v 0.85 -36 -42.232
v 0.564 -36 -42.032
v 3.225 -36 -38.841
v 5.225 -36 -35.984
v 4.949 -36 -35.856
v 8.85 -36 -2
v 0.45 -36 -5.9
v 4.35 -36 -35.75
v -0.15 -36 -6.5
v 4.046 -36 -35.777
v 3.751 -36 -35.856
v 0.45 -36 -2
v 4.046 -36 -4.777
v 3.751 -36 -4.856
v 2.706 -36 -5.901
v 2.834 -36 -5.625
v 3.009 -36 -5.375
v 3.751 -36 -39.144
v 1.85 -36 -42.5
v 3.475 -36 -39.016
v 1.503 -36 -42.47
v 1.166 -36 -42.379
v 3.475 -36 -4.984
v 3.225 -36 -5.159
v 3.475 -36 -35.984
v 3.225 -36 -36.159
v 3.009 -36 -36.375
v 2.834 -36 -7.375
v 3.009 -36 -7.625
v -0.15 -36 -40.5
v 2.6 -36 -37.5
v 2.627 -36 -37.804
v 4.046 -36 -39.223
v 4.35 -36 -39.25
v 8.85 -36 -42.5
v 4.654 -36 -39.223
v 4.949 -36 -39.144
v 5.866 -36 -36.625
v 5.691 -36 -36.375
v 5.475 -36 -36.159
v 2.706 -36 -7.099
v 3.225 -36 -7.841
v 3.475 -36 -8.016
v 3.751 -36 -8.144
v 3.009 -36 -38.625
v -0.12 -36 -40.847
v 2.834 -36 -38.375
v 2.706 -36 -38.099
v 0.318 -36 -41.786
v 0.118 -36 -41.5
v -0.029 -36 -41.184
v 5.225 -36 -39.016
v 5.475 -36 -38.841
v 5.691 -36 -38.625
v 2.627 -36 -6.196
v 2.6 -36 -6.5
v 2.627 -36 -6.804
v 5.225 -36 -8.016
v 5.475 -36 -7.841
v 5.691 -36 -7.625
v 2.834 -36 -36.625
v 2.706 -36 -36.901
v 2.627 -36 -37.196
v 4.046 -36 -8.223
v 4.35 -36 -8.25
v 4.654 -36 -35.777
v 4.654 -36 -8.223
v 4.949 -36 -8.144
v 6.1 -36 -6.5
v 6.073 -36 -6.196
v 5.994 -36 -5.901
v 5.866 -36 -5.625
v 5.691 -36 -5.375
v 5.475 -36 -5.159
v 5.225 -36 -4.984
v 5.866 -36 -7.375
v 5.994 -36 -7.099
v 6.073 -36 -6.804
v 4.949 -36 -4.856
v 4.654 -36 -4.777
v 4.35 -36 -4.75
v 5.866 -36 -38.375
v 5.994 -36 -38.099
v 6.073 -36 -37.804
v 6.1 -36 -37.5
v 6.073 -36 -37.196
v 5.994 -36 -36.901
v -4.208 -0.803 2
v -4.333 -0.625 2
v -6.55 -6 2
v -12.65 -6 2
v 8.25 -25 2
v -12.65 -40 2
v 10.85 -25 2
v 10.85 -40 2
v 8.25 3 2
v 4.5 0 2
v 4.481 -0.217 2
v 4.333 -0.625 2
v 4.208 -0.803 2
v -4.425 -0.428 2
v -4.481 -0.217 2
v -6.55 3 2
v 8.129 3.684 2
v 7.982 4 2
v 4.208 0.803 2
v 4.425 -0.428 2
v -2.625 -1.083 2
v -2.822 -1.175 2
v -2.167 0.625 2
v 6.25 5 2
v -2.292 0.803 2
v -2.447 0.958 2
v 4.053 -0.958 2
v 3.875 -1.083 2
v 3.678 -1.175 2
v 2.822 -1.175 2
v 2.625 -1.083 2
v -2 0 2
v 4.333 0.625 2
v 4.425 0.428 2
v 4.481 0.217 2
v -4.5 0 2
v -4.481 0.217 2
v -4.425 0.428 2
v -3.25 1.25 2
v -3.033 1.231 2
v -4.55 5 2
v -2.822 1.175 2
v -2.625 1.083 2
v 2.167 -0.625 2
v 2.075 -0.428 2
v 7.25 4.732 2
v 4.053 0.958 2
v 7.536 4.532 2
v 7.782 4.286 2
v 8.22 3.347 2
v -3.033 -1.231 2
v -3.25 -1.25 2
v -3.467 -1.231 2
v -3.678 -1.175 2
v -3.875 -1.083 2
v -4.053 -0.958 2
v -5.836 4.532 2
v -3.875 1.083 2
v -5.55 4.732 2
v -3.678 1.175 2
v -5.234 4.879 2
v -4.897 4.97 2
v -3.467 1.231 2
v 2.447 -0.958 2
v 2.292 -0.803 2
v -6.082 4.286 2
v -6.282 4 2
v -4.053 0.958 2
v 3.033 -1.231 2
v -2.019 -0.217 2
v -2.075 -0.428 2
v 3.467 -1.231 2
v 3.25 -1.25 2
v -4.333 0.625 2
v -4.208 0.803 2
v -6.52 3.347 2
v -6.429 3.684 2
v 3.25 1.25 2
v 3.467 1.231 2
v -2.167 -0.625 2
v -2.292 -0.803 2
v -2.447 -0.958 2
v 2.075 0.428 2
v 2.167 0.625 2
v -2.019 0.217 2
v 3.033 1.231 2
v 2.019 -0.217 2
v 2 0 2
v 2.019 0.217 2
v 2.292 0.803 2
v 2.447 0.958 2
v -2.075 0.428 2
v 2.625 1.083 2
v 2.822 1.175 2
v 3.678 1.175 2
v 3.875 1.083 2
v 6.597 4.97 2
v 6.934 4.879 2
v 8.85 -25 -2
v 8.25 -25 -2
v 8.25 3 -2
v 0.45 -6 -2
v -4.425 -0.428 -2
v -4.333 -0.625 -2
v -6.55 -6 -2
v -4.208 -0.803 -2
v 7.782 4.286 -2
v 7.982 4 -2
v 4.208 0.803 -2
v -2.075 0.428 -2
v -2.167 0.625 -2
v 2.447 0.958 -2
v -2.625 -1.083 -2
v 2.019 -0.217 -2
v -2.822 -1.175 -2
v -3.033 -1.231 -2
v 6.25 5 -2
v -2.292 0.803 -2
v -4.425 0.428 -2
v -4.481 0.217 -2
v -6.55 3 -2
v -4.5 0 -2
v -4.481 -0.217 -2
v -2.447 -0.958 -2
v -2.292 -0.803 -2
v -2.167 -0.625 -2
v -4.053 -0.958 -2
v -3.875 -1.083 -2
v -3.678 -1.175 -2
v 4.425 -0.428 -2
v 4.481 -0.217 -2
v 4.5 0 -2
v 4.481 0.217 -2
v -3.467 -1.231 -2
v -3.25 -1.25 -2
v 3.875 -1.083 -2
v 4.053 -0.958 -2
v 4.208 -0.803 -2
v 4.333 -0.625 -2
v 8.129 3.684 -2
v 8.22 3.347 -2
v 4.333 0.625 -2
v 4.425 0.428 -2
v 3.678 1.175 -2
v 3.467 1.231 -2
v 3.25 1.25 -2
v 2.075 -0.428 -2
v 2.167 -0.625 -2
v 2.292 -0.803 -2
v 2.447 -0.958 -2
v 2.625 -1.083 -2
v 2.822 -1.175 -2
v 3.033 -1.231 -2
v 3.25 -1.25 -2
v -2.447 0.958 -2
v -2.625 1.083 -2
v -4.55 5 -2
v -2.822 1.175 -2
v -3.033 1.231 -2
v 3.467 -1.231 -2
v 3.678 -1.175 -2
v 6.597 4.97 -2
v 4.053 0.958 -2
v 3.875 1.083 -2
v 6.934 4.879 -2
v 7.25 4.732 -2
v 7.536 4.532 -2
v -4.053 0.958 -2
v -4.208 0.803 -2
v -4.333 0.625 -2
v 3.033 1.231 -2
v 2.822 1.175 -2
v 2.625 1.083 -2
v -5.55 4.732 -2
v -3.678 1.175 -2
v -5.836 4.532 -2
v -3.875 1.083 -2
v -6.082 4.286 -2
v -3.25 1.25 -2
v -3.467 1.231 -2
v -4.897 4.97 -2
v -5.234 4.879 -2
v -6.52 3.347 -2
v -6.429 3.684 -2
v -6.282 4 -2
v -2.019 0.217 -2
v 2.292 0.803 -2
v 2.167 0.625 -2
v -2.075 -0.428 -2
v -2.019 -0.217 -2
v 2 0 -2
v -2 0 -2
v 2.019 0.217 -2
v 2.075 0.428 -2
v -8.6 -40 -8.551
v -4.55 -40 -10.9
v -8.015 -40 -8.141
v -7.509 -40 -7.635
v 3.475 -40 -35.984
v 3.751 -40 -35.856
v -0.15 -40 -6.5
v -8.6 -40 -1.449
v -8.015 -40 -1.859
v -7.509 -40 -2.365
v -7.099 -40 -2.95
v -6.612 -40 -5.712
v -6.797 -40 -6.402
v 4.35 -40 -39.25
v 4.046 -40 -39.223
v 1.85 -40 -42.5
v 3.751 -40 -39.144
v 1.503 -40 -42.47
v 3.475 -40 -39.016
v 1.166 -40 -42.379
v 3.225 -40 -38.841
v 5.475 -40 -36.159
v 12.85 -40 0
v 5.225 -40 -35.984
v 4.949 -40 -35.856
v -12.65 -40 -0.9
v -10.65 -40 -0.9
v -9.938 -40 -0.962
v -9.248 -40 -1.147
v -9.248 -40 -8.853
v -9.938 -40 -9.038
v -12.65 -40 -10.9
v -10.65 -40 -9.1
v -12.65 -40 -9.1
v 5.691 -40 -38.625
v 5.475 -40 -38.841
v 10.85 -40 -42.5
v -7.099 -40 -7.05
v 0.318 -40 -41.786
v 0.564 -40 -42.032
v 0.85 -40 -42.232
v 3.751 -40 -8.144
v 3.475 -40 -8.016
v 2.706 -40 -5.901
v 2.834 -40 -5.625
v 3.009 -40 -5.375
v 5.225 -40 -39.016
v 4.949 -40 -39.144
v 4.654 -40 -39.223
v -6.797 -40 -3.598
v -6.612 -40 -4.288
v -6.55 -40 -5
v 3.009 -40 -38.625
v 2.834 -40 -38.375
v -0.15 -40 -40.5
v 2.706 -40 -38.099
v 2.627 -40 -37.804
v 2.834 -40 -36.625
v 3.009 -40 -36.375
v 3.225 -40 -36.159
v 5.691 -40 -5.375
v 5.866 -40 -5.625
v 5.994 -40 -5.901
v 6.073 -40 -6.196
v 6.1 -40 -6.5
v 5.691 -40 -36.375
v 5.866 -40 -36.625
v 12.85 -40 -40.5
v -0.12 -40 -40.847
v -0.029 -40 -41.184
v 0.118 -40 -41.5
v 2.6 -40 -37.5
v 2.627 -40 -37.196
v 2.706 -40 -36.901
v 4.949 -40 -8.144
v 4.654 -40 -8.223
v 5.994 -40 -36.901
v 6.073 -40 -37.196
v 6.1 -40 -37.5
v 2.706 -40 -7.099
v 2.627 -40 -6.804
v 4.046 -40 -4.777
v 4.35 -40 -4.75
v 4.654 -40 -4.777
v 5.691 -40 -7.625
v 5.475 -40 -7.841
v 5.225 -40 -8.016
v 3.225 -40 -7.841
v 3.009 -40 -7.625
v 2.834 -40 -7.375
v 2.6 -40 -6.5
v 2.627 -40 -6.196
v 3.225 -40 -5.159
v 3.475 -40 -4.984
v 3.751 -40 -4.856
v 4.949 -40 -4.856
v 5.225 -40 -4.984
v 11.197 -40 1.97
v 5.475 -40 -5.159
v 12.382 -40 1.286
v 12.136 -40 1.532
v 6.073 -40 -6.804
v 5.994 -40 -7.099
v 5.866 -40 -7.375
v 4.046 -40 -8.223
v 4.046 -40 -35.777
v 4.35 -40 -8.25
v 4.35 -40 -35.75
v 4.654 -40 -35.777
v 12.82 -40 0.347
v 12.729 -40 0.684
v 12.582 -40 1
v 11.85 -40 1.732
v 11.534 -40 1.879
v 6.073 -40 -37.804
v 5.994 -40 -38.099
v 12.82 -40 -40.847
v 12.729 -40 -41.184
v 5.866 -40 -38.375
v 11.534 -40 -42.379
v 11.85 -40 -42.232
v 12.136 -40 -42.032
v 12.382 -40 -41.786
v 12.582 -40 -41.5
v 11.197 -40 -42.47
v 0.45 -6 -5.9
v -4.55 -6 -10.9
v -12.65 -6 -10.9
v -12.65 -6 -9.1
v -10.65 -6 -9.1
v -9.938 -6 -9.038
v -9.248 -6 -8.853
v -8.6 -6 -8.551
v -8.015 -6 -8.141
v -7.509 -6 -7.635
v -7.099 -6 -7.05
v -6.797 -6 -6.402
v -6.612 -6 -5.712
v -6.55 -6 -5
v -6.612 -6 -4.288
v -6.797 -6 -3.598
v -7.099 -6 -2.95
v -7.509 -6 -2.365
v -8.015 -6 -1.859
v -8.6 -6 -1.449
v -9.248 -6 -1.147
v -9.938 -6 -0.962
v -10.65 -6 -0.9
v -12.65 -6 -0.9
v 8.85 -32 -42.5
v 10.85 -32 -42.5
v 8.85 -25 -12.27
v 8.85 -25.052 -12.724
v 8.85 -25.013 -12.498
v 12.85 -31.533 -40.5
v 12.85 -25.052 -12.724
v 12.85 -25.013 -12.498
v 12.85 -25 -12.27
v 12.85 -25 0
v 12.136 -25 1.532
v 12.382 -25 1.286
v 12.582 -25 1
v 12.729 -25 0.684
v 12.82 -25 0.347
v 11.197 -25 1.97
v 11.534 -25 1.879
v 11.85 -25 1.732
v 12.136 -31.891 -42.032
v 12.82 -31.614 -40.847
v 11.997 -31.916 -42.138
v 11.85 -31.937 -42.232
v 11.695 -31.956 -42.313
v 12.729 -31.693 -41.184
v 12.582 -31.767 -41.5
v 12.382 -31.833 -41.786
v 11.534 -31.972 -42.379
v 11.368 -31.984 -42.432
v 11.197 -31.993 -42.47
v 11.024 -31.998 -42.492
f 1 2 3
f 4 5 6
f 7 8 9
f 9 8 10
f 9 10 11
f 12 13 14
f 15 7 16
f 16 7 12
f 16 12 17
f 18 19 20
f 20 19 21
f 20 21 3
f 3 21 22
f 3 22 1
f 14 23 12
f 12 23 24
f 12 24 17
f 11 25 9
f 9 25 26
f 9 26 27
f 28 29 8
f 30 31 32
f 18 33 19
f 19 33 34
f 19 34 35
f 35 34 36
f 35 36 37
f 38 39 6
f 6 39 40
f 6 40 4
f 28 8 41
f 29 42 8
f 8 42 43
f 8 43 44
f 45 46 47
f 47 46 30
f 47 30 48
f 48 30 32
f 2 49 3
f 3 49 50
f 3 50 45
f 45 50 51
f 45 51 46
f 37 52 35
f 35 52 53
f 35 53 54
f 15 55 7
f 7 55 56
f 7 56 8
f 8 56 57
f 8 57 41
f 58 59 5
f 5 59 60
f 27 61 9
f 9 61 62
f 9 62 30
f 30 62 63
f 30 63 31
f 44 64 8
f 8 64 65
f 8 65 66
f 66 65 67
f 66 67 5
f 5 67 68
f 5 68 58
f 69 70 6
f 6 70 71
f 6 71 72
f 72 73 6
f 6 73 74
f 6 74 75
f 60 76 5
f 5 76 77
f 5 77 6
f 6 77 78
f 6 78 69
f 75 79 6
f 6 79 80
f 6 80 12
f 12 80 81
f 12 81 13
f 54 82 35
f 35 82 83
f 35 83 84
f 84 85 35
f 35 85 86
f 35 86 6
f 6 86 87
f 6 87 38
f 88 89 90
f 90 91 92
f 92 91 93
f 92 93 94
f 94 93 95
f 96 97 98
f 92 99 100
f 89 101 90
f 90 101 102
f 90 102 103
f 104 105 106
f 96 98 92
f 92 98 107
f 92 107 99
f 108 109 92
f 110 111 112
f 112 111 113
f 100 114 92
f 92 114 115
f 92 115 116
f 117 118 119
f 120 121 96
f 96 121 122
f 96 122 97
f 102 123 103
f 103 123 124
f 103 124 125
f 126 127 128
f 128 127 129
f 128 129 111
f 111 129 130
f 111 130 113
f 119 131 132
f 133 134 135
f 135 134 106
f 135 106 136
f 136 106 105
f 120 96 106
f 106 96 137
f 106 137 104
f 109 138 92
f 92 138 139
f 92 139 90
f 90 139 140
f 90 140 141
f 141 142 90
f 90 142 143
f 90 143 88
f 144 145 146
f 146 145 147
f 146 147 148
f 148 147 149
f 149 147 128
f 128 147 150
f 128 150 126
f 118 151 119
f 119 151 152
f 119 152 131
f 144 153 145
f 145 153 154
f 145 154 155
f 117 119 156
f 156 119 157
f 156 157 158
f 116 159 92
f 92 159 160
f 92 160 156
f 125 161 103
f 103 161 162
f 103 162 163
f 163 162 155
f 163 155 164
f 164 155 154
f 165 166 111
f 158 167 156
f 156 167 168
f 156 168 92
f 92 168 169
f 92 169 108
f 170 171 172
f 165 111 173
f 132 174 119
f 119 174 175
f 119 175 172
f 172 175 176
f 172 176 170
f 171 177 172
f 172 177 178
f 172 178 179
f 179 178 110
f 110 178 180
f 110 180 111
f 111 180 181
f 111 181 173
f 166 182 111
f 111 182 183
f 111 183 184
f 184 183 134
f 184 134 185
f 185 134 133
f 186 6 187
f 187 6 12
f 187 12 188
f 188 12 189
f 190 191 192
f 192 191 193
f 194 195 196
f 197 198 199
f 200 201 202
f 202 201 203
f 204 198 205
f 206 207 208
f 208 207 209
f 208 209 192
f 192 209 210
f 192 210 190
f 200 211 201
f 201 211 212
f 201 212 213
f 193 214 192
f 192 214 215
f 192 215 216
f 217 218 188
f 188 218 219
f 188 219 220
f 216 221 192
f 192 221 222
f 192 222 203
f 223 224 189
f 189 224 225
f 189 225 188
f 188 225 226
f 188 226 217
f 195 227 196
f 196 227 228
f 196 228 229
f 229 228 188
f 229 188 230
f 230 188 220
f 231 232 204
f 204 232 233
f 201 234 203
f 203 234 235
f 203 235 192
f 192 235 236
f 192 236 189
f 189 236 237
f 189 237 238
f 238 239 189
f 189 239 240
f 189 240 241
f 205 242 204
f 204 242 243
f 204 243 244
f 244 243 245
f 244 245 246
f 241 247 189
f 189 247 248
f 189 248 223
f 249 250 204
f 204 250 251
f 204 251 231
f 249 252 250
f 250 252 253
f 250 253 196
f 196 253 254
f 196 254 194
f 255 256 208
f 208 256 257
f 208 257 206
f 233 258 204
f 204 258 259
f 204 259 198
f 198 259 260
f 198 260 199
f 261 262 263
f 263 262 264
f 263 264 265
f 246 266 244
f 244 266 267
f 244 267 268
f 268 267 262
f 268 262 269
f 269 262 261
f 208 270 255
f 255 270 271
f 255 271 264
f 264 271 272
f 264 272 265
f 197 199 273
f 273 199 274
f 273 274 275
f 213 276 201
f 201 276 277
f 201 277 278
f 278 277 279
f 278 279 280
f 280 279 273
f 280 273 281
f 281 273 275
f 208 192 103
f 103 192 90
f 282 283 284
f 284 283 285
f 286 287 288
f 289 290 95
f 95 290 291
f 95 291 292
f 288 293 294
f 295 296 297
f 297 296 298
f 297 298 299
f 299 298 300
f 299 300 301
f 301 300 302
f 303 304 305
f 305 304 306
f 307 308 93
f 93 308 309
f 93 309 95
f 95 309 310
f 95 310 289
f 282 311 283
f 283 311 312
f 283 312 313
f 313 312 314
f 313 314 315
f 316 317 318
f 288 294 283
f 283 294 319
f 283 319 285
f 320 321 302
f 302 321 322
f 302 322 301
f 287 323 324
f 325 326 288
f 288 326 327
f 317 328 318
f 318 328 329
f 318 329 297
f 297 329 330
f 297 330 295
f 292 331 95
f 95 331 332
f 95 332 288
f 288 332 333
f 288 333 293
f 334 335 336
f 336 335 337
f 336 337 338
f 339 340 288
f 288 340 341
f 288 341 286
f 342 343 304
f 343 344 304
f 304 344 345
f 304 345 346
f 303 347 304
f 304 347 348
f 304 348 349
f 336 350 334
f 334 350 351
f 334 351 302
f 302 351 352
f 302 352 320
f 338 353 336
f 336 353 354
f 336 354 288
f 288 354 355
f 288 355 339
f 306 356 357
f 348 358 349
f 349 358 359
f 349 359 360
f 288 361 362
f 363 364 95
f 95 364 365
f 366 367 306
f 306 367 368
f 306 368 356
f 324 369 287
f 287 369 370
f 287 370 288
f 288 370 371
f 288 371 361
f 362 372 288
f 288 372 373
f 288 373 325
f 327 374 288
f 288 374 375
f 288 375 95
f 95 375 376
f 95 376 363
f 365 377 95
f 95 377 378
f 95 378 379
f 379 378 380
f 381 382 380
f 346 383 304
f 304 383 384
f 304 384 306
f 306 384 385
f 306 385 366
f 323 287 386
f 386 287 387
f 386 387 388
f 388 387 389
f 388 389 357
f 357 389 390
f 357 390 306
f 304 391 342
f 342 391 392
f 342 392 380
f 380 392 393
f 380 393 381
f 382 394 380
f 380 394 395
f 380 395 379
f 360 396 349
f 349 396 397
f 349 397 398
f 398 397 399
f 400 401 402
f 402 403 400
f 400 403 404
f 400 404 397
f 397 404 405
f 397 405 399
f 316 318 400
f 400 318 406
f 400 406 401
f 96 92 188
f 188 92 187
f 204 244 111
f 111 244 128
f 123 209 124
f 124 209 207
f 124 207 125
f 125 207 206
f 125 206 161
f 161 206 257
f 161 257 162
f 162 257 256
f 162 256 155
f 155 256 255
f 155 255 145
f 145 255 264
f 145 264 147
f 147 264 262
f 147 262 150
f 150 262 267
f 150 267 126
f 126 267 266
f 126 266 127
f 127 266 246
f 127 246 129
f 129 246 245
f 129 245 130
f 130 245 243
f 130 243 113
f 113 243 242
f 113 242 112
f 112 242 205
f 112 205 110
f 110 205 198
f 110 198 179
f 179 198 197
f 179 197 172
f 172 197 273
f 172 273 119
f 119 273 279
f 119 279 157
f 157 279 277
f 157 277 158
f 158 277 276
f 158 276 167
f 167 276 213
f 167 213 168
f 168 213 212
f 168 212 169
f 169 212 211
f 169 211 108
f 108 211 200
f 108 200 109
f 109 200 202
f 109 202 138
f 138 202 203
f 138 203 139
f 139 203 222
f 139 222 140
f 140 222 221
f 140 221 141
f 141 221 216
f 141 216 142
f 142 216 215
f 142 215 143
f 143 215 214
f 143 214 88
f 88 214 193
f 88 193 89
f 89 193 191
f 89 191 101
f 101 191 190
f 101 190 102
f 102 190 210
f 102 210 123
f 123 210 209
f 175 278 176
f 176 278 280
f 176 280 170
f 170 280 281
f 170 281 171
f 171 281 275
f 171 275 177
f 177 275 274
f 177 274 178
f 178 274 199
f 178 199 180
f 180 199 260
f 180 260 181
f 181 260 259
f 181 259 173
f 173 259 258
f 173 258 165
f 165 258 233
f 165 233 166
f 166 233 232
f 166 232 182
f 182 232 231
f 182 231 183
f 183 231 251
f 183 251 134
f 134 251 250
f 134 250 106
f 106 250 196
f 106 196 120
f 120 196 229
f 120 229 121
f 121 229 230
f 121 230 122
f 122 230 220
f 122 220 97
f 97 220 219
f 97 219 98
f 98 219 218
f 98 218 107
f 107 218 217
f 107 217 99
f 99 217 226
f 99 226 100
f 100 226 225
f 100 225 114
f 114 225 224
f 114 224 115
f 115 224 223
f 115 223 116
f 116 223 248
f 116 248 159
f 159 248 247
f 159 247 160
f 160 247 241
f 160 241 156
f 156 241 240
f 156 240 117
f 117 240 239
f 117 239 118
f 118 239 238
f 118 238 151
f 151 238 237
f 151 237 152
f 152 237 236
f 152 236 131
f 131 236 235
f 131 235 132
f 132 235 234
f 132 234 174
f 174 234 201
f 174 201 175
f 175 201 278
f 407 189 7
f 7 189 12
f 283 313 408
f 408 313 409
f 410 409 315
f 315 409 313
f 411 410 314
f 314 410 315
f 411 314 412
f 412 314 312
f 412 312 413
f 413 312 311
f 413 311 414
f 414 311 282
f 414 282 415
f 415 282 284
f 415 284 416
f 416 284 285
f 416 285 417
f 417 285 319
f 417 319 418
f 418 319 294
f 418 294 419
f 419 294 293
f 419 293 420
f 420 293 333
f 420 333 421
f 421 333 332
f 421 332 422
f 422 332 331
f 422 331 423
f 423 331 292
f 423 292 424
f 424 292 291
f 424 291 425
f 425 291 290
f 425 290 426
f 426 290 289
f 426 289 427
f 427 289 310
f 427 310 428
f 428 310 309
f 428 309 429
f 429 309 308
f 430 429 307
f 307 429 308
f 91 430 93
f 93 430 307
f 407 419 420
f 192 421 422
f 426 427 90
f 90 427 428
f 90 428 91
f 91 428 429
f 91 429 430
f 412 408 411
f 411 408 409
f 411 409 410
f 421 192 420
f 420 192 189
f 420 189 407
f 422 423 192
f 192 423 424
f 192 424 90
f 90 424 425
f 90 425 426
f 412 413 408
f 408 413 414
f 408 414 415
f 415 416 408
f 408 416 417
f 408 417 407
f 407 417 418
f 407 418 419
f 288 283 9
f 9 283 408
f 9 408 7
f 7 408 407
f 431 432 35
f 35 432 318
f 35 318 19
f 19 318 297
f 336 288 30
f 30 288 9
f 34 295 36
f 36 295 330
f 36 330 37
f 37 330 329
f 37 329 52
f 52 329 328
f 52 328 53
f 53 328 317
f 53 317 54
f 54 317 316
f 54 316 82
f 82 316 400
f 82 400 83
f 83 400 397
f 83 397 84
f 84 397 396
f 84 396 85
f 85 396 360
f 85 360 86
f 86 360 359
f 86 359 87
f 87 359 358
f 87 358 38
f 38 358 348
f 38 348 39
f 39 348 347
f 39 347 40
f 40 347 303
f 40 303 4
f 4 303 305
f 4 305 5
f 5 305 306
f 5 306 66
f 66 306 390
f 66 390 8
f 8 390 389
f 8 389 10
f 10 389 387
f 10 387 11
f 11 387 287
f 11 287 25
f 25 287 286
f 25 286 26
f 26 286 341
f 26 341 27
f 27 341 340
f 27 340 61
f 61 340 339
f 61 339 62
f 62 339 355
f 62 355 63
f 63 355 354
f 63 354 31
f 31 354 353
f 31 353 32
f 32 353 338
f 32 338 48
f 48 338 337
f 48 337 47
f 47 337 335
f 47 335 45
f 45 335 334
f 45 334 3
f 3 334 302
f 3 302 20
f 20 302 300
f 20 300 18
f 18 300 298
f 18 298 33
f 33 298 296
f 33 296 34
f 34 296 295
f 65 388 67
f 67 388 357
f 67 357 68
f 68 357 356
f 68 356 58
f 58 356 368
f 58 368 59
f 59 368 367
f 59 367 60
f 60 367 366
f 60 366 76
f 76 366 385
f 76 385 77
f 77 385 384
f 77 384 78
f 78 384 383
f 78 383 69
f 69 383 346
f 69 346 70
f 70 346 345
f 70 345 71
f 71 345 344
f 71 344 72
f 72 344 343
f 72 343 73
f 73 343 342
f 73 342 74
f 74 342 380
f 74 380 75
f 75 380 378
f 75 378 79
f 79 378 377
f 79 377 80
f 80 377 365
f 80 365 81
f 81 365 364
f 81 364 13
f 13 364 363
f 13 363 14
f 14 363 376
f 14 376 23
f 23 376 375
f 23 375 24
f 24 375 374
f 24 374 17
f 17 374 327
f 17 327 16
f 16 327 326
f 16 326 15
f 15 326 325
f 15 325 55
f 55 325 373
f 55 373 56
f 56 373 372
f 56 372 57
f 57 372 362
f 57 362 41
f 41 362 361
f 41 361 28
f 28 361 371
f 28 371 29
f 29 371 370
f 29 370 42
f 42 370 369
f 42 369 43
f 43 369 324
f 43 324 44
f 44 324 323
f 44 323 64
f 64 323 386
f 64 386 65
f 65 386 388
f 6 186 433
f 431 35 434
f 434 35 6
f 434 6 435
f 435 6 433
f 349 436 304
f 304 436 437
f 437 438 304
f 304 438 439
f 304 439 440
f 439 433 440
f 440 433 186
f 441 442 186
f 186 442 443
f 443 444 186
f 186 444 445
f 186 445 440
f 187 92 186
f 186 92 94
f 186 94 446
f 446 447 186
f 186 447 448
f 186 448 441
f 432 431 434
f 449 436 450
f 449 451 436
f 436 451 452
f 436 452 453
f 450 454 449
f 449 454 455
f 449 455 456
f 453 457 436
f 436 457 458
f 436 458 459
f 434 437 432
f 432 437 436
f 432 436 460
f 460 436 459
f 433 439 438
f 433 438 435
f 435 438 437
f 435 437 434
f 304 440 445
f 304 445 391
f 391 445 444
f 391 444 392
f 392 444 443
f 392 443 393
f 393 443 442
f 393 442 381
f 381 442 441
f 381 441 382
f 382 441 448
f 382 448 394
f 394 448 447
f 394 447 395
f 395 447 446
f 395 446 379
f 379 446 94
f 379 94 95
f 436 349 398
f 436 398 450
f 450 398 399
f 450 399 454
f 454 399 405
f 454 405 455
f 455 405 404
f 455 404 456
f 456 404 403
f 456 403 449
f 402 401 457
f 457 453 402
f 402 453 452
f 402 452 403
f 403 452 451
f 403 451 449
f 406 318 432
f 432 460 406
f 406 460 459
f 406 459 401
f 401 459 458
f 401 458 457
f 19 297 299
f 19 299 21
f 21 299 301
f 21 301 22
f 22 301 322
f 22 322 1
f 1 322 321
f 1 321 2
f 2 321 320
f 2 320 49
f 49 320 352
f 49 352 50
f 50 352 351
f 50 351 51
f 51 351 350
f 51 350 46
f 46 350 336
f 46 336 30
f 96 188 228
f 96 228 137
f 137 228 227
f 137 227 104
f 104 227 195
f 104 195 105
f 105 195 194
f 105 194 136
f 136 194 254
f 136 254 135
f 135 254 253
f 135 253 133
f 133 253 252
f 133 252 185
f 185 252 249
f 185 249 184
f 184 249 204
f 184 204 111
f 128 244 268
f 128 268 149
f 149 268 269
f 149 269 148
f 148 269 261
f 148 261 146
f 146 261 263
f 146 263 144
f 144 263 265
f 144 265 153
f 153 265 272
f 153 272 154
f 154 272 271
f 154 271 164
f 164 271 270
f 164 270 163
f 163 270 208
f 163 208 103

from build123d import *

# Parameters (mm, degrees)
SKETCH1_W           = 14.8
SKETCH1_H           = 45
SKETCH1_R           = 1.25
BOSS_EXTRUDE1_DEPTH = 2
BOSS_EXTRUDE2_DEPTH = 34
CHAMFER2_SIZE       = 5
SKETCH3_W           = 9
SKETCH3_H           = 44.5
SKETCH3_R           = 1.75
BOSS_EXTRUDE3_DEPTH = 4
BOSS_EXTRUDE4_DEPTH = 15
CHAMFER3_SIZE       = 7
CHAMFER3_SIZE2      = 30
FILLET3_R           = 2
FILLET4_R           = 2


with BuildPart() as part:
    # Sketch1 → Boss-Extrude1 (new body, symmetric)
    with BuildSketch(Plane.XY):
        with Locations((0.85, -17.5)):
            Rectangle(SKETCH1_W, SKETCH1_H)
        with Locations((-3.25, 0)):
            Circle(SKETCH1_R, mode=Mode.SUBTRACT)
        with Locations((3.25, 0)):
            Circle(SKETCH1_R, mode=Mode.SUBTRACT)
    extrude(amount=BOSS_EXTRUDE1_DEPTH, both=True)

    # Sketch2 → Boss-Extrude2 (add)
    with BuildSketch(Plane.XZ.offset(40)):
        with BuildLine():
            Line((-6.55, -2), (-6.55, 2))
            Line((-6.55, 2), (-12.65, 2))
            Line((-12.65, 2), (-12.65, -0.9))
            Line((-12.65, -0.9), (-10.65, -0.9))
            ThreePointArc((-10.65, -0.9), (-6.55, -5), (-10.65, -9.1))
            Line((-10.65, -9.1), (-12.65, -9.1))
            Line((-12.65, -9.1), (-12.65, -10.9))
            Line((-12.65, -10.9), (0.45, -10.9))
            Line((0.45, -10.9), (0.45, -2))
            Line((0.45, -2), (-6.55, -2))
        make_face()
    extrude(amount=-BOSS_EXTRUDE2_DEPTH)

    # Chamfer2
    chamfer2_edges = [part.edges().sort_by_distance(p)[0] for p in [
        (0.45, -23, -10.9),
    ]]
    chamfer(chamfer2_edges, length=CHAMFER2_SIZE)

    # Sketch3 → Boss-Extrude3 (add)
    with BuildSketch(Plane.XZ.offset(40)):
        with Locations((4.35, -20.25)):
            Rectangle(SKETCH3_W, SKETCH3_H)
        with Locations((4.35, -37.5)):
            Circle(SKETCH3_R, mode=Mode.SUBTRACT)
        with Locations((4.35, -6.5)):
            Circle(SKETCH3_R, mode=Mode.SUBTRACT)
    extrude(amount=-BOSS_EXTRUDE3_DEPTH)

    # Sketch4 → Boss-Extrude4 (add)
    with BuildSketch(Plane(origin=(0, -40, 0), x_dir=(-1, 0, 0), z_dir=(0, 1, 0))):
        Polygon((-8.85, -42.5), (-12.85, -42.5), (-12.85, 2), (-8.85, 2), (-8.25, 2), (-8.25, -2), (-8.85, -2), align=None)
    extrude(amount=BOSS_EXTRUDE4_DEPTH)

    # Chamfer3
    chamfer3_edges = [part.edges().sort_by_distance(p)[0] for p in [
        (10.85, -25, -42.5),
    ]]
    chamfer3_side = [part.faces().sort_by_distance(p)[0] for p in [
        (0.048494332, -38, -42.5),
    ]]
    chamfer(chamfer3_edges, length=CHAMFER3_SIZE, length2=CHAMFER3_SIZE2, reference=chamfer3_side[0])

    # Fillet3
    fillet3_edges = [part.edges().sort_by_distance(p)[0] for p in [
        (10.85, -25, -12.5),
        (12.85, -36, -42.5),
        (-0.15, -38, -42.5),
        (12.85, -32.5, 2),
    ]]
    fillet(fillet3_edges, radius=FILLET3_R)

    # Fillet4
    fillet4_edges = [part.edges().sort_by_distance(p)[0] for p in [
        (-6.55, 5, 0),
        (8.25, 5, 0),
    ]]
    fillet(fillet4_edges, radius=FILLET4_R)


solid = part.part
